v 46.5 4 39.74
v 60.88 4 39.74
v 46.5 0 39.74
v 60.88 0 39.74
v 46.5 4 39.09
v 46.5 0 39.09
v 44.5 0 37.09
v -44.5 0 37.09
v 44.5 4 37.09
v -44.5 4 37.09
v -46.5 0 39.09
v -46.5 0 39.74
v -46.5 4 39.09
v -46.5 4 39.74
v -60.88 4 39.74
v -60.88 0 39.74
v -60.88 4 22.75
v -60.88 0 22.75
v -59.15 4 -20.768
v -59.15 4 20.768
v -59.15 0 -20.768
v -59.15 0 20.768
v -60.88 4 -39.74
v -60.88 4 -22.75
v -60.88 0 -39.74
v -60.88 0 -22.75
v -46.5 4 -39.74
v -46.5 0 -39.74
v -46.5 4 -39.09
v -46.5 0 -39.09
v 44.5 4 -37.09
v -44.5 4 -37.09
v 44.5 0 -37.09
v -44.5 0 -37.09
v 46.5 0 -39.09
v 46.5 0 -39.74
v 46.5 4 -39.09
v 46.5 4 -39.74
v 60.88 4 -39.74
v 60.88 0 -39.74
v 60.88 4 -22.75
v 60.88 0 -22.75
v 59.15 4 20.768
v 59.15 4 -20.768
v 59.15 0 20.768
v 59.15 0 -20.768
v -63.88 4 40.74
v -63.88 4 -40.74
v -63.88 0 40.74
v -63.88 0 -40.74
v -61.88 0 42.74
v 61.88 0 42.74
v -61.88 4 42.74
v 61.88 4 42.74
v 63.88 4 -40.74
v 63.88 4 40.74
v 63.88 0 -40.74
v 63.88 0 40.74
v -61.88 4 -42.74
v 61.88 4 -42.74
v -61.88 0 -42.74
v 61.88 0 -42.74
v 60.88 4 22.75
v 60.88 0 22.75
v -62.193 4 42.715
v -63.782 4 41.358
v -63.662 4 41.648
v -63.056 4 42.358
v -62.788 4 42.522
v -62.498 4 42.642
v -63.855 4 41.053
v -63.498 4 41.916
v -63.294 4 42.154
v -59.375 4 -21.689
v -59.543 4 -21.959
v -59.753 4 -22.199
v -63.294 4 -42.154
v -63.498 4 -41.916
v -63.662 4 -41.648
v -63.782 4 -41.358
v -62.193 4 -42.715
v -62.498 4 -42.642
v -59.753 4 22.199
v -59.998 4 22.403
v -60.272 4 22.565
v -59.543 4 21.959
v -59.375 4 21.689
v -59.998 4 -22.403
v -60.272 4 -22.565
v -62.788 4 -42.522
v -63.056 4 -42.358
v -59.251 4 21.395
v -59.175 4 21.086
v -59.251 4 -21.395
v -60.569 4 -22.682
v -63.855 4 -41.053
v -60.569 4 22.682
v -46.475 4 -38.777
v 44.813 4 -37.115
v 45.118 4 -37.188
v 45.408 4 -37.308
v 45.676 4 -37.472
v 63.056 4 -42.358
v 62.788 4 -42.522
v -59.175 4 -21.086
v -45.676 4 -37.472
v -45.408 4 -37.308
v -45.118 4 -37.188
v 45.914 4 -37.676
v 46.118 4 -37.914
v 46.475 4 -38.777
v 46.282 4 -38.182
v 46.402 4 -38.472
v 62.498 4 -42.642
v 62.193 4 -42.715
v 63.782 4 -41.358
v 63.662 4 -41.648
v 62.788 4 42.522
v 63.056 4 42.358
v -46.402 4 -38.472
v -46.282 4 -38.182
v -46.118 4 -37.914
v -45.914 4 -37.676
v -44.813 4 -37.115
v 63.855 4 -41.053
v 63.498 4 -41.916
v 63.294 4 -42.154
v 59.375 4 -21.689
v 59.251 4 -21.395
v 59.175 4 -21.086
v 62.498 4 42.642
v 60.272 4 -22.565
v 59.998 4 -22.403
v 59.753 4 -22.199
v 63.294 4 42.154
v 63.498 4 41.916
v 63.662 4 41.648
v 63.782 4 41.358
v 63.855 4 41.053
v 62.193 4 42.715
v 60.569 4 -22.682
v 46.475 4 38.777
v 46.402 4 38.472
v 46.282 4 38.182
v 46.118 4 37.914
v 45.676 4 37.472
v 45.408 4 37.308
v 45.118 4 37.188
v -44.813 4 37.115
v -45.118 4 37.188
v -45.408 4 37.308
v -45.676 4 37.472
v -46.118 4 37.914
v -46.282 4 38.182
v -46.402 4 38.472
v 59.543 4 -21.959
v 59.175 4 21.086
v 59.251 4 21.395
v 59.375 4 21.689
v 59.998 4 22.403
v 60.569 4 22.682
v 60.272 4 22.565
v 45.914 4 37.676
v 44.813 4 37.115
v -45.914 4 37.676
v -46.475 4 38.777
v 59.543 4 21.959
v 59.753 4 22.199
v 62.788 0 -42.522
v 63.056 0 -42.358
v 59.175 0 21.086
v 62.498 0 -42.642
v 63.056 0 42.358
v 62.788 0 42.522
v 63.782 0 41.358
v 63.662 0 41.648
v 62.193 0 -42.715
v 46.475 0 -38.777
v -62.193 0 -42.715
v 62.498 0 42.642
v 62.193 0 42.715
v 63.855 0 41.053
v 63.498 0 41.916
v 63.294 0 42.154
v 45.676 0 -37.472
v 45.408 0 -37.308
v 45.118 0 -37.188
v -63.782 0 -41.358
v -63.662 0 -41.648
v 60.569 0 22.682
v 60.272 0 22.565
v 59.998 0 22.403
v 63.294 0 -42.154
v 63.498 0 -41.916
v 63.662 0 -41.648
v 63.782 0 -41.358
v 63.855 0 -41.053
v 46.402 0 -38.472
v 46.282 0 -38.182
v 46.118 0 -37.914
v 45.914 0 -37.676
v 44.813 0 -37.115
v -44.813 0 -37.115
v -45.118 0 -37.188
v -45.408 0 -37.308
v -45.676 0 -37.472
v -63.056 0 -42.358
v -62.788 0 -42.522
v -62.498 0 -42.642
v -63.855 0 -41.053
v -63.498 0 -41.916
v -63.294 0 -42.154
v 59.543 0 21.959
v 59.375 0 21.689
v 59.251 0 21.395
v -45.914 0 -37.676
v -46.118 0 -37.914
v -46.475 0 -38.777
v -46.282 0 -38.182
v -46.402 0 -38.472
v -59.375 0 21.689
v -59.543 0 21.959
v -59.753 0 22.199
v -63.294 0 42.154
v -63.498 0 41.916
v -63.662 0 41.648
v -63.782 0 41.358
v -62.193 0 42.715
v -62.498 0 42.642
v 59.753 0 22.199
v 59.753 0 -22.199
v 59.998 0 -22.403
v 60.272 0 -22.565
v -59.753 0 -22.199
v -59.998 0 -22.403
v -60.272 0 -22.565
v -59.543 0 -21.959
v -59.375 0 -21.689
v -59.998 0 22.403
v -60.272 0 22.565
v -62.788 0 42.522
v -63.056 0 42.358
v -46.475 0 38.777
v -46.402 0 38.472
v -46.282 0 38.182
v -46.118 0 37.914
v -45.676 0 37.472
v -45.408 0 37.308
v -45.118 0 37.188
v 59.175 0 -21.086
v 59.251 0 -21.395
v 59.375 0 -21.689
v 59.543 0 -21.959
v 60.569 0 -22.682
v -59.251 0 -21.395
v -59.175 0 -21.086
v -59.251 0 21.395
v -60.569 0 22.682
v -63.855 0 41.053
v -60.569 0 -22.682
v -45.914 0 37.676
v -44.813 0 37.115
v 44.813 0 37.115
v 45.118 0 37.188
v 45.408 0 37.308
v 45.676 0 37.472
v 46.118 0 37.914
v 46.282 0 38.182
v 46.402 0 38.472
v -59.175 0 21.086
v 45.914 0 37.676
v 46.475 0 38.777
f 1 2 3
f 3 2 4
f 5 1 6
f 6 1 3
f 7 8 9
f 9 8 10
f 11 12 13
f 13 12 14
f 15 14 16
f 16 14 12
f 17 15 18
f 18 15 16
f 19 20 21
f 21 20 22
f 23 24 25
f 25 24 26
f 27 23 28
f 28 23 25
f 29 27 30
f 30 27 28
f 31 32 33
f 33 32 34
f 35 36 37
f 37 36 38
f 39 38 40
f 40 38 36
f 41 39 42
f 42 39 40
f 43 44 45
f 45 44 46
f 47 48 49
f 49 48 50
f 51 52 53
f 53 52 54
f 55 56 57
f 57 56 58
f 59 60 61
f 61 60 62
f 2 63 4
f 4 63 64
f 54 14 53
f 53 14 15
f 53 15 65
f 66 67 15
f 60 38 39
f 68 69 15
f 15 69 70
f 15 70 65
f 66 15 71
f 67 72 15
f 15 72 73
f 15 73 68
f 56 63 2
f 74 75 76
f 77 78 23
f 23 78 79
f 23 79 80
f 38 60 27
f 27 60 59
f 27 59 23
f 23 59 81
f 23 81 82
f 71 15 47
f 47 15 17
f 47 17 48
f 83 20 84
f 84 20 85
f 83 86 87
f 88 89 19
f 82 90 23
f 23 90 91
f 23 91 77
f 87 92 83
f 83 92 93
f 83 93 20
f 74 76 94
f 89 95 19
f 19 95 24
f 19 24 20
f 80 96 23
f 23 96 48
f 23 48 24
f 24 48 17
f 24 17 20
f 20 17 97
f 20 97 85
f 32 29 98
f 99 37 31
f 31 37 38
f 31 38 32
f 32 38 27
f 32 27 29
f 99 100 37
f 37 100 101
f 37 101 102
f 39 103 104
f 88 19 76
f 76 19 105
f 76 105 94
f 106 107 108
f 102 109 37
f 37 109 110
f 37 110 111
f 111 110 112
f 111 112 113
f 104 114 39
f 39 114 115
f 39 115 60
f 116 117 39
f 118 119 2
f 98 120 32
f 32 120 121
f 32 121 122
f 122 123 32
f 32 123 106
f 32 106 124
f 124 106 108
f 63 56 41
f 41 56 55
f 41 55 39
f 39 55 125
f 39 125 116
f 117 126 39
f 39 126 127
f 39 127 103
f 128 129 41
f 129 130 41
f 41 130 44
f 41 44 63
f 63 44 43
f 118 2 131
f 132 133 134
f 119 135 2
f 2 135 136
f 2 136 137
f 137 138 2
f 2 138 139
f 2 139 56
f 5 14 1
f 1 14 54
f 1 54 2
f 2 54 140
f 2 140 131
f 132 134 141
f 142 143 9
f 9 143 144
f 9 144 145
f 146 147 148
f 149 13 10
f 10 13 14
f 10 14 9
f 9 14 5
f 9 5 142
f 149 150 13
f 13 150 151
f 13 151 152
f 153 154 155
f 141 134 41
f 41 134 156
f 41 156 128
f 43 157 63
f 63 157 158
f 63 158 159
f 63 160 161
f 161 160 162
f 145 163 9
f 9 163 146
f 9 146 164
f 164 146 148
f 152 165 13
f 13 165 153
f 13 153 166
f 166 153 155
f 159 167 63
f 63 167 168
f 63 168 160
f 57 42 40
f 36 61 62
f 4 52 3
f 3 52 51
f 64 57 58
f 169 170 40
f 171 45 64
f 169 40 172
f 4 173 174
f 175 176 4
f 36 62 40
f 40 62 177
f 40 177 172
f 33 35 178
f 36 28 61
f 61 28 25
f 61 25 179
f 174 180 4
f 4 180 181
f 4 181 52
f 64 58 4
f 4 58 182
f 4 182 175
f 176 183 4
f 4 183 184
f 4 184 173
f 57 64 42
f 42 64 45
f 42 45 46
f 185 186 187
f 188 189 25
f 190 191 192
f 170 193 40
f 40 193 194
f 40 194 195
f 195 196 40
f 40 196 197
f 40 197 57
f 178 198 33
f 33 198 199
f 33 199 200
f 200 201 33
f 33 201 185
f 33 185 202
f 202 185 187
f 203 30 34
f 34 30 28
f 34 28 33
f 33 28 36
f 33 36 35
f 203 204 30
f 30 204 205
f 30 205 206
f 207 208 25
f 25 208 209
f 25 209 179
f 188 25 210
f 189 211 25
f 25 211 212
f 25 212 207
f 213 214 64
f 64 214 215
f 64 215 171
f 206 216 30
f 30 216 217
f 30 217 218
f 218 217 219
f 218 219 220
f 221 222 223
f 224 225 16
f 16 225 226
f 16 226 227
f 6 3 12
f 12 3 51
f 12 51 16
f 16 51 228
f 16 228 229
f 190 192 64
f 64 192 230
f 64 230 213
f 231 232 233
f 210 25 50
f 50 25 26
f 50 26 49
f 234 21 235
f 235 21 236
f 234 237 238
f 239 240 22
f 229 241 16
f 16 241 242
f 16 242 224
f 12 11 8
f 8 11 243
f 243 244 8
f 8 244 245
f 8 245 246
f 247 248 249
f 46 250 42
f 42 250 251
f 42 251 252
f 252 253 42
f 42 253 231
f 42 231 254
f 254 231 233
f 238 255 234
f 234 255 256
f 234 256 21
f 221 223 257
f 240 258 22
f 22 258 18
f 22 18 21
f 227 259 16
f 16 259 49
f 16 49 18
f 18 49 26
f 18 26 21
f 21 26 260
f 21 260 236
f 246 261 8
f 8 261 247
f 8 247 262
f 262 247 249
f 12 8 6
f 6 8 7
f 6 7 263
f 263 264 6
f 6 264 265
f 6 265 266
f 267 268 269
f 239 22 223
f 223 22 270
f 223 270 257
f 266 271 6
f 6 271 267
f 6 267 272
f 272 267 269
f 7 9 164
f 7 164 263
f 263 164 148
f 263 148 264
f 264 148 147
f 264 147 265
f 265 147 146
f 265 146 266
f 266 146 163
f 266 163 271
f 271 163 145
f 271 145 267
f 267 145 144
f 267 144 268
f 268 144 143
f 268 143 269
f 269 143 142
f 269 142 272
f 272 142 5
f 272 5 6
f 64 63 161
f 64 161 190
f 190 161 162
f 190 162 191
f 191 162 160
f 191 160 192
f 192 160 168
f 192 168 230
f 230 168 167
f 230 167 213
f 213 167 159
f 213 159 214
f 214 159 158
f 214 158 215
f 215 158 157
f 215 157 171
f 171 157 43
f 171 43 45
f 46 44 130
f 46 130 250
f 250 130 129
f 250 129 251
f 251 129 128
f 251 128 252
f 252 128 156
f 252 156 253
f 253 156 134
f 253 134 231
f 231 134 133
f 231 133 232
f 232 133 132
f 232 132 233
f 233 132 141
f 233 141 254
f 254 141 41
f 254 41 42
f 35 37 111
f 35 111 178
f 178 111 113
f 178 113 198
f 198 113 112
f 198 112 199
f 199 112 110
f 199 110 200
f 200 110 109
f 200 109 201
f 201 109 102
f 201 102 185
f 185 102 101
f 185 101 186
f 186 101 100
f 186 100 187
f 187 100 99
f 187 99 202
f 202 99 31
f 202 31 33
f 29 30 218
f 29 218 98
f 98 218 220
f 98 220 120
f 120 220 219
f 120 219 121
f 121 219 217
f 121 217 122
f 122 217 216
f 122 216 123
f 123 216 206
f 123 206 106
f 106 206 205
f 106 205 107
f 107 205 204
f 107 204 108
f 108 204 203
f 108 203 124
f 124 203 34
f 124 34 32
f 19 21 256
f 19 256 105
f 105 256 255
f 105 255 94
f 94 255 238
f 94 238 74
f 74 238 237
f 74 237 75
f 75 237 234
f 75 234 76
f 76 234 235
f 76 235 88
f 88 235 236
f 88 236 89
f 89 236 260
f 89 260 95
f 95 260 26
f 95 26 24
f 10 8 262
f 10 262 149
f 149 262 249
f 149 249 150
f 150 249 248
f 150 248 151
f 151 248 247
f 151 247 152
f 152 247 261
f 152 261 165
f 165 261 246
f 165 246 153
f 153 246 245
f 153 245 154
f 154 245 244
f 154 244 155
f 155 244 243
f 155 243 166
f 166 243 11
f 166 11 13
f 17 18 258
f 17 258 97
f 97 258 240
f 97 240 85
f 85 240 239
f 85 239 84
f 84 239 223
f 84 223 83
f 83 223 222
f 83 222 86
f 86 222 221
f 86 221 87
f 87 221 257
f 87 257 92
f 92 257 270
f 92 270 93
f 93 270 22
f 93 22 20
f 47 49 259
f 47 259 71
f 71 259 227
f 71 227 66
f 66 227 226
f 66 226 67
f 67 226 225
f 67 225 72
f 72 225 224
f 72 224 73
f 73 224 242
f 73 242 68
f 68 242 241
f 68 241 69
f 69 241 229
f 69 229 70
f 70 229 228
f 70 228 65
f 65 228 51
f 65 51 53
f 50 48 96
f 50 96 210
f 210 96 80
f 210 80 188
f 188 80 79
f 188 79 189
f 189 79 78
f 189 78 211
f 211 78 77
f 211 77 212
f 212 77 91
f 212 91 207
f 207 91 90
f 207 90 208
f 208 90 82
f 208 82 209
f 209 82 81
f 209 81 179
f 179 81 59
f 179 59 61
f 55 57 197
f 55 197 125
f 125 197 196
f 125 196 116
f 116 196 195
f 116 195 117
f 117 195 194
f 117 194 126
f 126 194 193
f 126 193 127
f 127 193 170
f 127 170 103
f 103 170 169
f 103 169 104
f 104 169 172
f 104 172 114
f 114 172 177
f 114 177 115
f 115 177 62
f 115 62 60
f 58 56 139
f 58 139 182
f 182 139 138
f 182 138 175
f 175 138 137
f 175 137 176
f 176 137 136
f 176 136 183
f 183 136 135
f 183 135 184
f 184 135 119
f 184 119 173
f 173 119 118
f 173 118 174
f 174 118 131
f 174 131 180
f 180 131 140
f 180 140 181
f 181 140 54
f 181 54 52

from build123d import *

# Parameters (mm, degrees)
SKETCH2_W           = 127.76
SKETCH2_H           = 85.48
SKETCH2_W_2         = 121.76
SKETCH2_H_2         = 79.48
SKETCH2_W_3         = 1.73
SKETCH2_H_3         = 45.5
SKETCH2_W_4         = 93
SKETCH2_H_4         = 2.65
BOSS_EXTRUDE1_DEPTH = 4
FILLET1_R           = 2


with BuildPart() as part:
    # Sketch2 → Boss-Extrude1 (new body)
    # profile 1 of 5: a face of its own
    with BuildSketch(Plane(origin=(0, 0, 0), x_dir=(1, 0, 0), z_dir=(0, 1, 0))):
        Rectangle(SKETCH2_W, SKETCH2_H)
        Rectangle(SKETCH2_W_2, SKETCH2_H_2, mode=Mode.SUBTRACT)
    # profile 2 of 5: a face of its own
    with BuildSketch(Plane(origin=(0, 0, 0), x_dir=(1, 0, 0), z_dir=(0, 1, 0))):
        with Locations((-60.015, 0)):
            Rectangle(SKETCH2_W_3, SKETCH2_H_3)
    # profile 3 of 5: a face of its own
    with BuildSketch(Plane(origin=(0, 0, 0), x_dir=(1, 0, 0), z_dir=(0, 1, 0))):
        with Locations((0, 38.415)):
            Rectangle(SKETCH2_W_4, SKETCH2_H_4)
    # profile 4 of 5: a face of its own
    with BuildSketch(Plane(origin=(0, 0, 0), x_dir=(1, 0, 0), z_dir=(0, 1, 0))):
        with Locations((60.015, 0)):
            Rectangle(SKETCH2_W_3, SKETCH2_H_3)
    # profile 5 of 5: a face of its own
    with BuildSketch(Plane(origin=(0, 0, 0), x_dir=(1, 0, 0), z_dir=(0, 1, 0))):
        with Locations((0, -38.415)):
            Rectangle(SKETCH2_W_4, SKETCH2_H_4)
    extrude(amount=BOSS_EXTRUDE1_DEPTH)

    # Fillet1
    # the kernel refuses this fillet: 2 mm, written as the material it takes off along each edge
    with BuildSketch(Plane(origin=(46.5, -5, 37.09), x_dir=(0, 0, 1), z_dir=(0, 1, 0)), Plane(origin=(-46.5, -5, 37.09), x_dir=(1, 0, 0), z_dir=(0, 1, 0)), Plane(origin=(-63.88, -5, 42.74), x_dir=(0, 0, -1), z_dir=(0, 1, 0)), Plane(origin=(63.88, -5, 42.74), x_dir=(-1, 0, 0), z_dir=(0, 1, 0))) as fillet1_piece_1:
        with BuildLine():
            CenterArc((FILLET1_R, -FILLET1_R), FILLET1_R, 90, 90)
            Line((0, -FILLET1_R), (-FILLET1_R * 0.02, -FILLET1_R))
            Line((-FILLET1_R * 0.02, -FILLET1_R), (-FILLET1_R * 0.02, FILLET1_R * 0.02))
            Line((-FILLET1_R * 0.02, FILLET1_R * 0.02), (FILLET1_R, FILLET1_R * 0.02))
            Line((FILLET1_R, FILLET1_R * 0.02), (FILLET1_R, 0))
        make_face()
    extrude(amount=14, mode=Mode.SUBTRACT)
    with BuildSketch(Plane(origin=(59.15, -4.954227992, 22.75), x_dir=(1, 0, 0), z_dir=(0, 1, 0)), Plane(origin=(-59.15, -4.954227992, -22.75), x_dir=(-1, 0, 0), z_dir=(0, 1, 0))) as fillet1_piece_2:
        with BuildLine():
            CenterArc((2, 1.981691197), FILLET1_R, 180, 82.241380111)
            Line((0, 1.981691197), (-0.04, 1.981691197))
            Line((-0.04, 1.981691197), (-0.04, 0))
            Line((-0.04, 0), (0, -0.04))
            ThreePointArc((0, -0.04), (0.865, -0.04), (1.7246, -0.039633824))
            Line((1.7246, -0.039633824), (1.73, 0))
        make_face()
    extrude(amount=13.908455985, mode=Mode.SUBTRACT)
    with BuildSketch(Plane(origin=(59.15, -4.954227992, -22.75), x_dir=(0, 0, 1), z_dir=(0, 1, 0)), Plane(origin=(-59.15, -4.954227992, 22.75), x_dir=(0, 0, -1), z_dir=(0, 1, 0))) as fillet1_piece_3:
        with BuildLine():
            CenterArc((1.981691197, 2), FILLET1_R, 187.758619889, 82.241380111)
            Line((0, 1.73), (-0.039633824, 1.7246))
            ThreePointArc((-0.039633824, 1.7246), (-0.04, 0.865), (-0.04, 0))
            Line((-0.04, 0), (0, -0.04))
            Line((0, -0.04), (1.981691197, -0.04))
            Line((1.981691197, -0.04), (1.981691197, 0))
        make_face()
    extrude(amount=13.908455985, mode=Mode.SUBTRACT)
    with BuildSketch(Plane(origin=(46.5, -5, -37.09), x_dir=(0, 0, -1), z_dir=(0, 1, 0)), Plane(origin=(-46.5, -5, -37.09), x_dir=(1, 0, 0), z_dir=(0, 1, 0)), Plane(origin=(-63.88, -5, -42.74), x_dir=(0, 0, 1), z_dir=(0, 1, 0)), Plane(origin=(63.88, -5, -42.74), x_dir=(-1, 0, 0), z_dir=(0, 1, 0))) as fillet1_piece_4:
        with BuildLine():
            CenterArc((FILLET1_R, FILLET1_R), FILLET1_R, 180, 90)
            Line((0, FILLET1_R), (-FILLET1_R * 0.02, FILLET1_R))
            Line((-FILLET1_R * 0.02, FILLET1_R), (-FILLET1_R * 0.02, -FILLET1_R * 0.02))
            Line((-FILLET1_R * 0.02, -FILLET1_R * 0.02), (FILLET1_R, -FILLET1_R * 0.02))
            Line((FILLET1_R, -FILLET1_R * 0.02), (FILLET1_R, 0))
        make_face()
    extrude(amount=14, mode=Mode.SUBTRACT)


solid = part.part
